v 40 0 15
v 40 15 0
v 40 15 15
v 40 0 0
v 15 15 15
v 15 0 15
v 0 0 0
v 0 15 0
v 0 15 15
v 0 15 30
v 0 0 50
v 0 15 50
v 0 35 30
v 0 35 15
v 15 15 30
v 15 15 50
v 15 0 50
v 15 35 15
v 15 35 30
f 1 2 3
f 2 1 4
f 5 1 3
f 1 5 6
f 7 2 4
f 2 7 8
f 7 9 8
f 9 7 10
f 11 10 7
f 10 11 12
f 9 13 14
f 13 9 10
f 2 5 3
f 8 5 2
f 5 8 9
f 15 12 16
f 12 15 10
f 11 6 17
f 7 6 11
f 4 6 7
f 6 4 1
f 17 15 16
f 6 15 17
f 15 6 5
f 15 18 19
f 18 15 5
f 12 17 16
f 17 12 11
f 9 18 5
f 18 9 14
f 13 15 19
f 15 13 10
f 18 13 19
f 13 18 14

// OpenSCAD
// Parameters
thickness = 15;  // Increased thickness for stronger arms
long_arm_length = 40;  // Shortened to match the original proportions
short_arm_length = 25;
height = 35;  // Adjusted height for better proportion

// Module to create the L-bracket
module L_bracket() {
    // Base arm
    cube([long_arm_length, thickness, thickness]);

    // Vertical arm
    translate([0, 0, thickness])
        cube([thickness, thickness, height]);

    // Reinforced diagonal support repositioned and integrated
    translate([0, 0, thickness])
        linear_extrude(height=thickness)
        polygon(points=[[0, 0], [thickness, 0], [thickness, height], [0, height]]);
}

// Render the L-bracket
L_bracket();
